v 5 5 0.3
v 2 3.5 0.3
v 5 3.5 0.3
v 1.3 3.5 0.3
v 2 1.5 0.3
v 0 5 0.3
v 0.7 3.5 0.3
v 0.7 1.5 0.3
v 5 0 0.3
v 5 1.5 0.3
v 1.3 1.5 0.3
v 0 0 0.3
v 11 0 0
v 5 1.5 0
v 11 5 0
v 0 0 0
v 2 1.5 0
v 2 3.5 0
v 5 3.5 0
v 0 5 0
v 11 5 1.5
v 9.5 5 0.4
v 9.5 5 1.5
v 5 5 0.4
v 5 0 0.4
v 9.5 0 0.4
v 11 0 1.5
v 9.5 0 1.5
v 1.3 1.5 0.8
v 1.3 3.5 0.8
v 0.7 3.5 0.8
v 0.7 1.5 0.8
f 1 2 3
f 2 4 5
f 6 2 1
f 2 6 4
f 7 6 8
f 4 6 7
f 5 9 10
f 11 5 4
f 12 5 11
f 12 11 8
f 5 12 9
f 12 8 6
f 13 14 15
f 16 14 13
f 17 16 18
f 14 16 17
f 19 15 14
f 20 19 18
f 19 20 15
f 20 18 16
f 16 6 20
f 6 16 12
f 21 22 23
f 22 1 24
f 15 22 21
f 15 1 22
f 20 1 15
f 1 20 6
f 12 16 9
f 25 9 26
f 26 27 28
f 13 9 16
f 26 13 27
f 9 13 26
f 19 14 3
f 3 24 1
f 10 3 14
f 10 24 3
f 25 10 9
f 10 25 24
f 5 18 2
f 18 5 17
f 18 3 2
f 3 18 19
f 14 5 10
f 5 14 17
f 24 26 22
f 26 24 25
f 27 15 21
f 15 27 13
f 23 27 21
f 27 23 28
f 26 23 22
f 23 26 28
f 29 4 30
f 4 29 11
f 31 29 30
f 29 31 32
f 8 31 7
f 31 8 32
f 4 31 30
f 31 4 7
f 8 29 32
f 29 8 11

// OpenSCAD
// plate
difference() {
    cube([10, 5, 0.3]);

    translate([2, 1.5, -.5]) cube([3, 2, 1]);
}
translate([5, 0, 0]) cube([5, 5, .4]);
translate([8.5+1, 0, 0]) cube([1.5, 5, 1.5]);



// bump
translate([.7, 1.5, 0])
cube([.6, 2, .8]);
